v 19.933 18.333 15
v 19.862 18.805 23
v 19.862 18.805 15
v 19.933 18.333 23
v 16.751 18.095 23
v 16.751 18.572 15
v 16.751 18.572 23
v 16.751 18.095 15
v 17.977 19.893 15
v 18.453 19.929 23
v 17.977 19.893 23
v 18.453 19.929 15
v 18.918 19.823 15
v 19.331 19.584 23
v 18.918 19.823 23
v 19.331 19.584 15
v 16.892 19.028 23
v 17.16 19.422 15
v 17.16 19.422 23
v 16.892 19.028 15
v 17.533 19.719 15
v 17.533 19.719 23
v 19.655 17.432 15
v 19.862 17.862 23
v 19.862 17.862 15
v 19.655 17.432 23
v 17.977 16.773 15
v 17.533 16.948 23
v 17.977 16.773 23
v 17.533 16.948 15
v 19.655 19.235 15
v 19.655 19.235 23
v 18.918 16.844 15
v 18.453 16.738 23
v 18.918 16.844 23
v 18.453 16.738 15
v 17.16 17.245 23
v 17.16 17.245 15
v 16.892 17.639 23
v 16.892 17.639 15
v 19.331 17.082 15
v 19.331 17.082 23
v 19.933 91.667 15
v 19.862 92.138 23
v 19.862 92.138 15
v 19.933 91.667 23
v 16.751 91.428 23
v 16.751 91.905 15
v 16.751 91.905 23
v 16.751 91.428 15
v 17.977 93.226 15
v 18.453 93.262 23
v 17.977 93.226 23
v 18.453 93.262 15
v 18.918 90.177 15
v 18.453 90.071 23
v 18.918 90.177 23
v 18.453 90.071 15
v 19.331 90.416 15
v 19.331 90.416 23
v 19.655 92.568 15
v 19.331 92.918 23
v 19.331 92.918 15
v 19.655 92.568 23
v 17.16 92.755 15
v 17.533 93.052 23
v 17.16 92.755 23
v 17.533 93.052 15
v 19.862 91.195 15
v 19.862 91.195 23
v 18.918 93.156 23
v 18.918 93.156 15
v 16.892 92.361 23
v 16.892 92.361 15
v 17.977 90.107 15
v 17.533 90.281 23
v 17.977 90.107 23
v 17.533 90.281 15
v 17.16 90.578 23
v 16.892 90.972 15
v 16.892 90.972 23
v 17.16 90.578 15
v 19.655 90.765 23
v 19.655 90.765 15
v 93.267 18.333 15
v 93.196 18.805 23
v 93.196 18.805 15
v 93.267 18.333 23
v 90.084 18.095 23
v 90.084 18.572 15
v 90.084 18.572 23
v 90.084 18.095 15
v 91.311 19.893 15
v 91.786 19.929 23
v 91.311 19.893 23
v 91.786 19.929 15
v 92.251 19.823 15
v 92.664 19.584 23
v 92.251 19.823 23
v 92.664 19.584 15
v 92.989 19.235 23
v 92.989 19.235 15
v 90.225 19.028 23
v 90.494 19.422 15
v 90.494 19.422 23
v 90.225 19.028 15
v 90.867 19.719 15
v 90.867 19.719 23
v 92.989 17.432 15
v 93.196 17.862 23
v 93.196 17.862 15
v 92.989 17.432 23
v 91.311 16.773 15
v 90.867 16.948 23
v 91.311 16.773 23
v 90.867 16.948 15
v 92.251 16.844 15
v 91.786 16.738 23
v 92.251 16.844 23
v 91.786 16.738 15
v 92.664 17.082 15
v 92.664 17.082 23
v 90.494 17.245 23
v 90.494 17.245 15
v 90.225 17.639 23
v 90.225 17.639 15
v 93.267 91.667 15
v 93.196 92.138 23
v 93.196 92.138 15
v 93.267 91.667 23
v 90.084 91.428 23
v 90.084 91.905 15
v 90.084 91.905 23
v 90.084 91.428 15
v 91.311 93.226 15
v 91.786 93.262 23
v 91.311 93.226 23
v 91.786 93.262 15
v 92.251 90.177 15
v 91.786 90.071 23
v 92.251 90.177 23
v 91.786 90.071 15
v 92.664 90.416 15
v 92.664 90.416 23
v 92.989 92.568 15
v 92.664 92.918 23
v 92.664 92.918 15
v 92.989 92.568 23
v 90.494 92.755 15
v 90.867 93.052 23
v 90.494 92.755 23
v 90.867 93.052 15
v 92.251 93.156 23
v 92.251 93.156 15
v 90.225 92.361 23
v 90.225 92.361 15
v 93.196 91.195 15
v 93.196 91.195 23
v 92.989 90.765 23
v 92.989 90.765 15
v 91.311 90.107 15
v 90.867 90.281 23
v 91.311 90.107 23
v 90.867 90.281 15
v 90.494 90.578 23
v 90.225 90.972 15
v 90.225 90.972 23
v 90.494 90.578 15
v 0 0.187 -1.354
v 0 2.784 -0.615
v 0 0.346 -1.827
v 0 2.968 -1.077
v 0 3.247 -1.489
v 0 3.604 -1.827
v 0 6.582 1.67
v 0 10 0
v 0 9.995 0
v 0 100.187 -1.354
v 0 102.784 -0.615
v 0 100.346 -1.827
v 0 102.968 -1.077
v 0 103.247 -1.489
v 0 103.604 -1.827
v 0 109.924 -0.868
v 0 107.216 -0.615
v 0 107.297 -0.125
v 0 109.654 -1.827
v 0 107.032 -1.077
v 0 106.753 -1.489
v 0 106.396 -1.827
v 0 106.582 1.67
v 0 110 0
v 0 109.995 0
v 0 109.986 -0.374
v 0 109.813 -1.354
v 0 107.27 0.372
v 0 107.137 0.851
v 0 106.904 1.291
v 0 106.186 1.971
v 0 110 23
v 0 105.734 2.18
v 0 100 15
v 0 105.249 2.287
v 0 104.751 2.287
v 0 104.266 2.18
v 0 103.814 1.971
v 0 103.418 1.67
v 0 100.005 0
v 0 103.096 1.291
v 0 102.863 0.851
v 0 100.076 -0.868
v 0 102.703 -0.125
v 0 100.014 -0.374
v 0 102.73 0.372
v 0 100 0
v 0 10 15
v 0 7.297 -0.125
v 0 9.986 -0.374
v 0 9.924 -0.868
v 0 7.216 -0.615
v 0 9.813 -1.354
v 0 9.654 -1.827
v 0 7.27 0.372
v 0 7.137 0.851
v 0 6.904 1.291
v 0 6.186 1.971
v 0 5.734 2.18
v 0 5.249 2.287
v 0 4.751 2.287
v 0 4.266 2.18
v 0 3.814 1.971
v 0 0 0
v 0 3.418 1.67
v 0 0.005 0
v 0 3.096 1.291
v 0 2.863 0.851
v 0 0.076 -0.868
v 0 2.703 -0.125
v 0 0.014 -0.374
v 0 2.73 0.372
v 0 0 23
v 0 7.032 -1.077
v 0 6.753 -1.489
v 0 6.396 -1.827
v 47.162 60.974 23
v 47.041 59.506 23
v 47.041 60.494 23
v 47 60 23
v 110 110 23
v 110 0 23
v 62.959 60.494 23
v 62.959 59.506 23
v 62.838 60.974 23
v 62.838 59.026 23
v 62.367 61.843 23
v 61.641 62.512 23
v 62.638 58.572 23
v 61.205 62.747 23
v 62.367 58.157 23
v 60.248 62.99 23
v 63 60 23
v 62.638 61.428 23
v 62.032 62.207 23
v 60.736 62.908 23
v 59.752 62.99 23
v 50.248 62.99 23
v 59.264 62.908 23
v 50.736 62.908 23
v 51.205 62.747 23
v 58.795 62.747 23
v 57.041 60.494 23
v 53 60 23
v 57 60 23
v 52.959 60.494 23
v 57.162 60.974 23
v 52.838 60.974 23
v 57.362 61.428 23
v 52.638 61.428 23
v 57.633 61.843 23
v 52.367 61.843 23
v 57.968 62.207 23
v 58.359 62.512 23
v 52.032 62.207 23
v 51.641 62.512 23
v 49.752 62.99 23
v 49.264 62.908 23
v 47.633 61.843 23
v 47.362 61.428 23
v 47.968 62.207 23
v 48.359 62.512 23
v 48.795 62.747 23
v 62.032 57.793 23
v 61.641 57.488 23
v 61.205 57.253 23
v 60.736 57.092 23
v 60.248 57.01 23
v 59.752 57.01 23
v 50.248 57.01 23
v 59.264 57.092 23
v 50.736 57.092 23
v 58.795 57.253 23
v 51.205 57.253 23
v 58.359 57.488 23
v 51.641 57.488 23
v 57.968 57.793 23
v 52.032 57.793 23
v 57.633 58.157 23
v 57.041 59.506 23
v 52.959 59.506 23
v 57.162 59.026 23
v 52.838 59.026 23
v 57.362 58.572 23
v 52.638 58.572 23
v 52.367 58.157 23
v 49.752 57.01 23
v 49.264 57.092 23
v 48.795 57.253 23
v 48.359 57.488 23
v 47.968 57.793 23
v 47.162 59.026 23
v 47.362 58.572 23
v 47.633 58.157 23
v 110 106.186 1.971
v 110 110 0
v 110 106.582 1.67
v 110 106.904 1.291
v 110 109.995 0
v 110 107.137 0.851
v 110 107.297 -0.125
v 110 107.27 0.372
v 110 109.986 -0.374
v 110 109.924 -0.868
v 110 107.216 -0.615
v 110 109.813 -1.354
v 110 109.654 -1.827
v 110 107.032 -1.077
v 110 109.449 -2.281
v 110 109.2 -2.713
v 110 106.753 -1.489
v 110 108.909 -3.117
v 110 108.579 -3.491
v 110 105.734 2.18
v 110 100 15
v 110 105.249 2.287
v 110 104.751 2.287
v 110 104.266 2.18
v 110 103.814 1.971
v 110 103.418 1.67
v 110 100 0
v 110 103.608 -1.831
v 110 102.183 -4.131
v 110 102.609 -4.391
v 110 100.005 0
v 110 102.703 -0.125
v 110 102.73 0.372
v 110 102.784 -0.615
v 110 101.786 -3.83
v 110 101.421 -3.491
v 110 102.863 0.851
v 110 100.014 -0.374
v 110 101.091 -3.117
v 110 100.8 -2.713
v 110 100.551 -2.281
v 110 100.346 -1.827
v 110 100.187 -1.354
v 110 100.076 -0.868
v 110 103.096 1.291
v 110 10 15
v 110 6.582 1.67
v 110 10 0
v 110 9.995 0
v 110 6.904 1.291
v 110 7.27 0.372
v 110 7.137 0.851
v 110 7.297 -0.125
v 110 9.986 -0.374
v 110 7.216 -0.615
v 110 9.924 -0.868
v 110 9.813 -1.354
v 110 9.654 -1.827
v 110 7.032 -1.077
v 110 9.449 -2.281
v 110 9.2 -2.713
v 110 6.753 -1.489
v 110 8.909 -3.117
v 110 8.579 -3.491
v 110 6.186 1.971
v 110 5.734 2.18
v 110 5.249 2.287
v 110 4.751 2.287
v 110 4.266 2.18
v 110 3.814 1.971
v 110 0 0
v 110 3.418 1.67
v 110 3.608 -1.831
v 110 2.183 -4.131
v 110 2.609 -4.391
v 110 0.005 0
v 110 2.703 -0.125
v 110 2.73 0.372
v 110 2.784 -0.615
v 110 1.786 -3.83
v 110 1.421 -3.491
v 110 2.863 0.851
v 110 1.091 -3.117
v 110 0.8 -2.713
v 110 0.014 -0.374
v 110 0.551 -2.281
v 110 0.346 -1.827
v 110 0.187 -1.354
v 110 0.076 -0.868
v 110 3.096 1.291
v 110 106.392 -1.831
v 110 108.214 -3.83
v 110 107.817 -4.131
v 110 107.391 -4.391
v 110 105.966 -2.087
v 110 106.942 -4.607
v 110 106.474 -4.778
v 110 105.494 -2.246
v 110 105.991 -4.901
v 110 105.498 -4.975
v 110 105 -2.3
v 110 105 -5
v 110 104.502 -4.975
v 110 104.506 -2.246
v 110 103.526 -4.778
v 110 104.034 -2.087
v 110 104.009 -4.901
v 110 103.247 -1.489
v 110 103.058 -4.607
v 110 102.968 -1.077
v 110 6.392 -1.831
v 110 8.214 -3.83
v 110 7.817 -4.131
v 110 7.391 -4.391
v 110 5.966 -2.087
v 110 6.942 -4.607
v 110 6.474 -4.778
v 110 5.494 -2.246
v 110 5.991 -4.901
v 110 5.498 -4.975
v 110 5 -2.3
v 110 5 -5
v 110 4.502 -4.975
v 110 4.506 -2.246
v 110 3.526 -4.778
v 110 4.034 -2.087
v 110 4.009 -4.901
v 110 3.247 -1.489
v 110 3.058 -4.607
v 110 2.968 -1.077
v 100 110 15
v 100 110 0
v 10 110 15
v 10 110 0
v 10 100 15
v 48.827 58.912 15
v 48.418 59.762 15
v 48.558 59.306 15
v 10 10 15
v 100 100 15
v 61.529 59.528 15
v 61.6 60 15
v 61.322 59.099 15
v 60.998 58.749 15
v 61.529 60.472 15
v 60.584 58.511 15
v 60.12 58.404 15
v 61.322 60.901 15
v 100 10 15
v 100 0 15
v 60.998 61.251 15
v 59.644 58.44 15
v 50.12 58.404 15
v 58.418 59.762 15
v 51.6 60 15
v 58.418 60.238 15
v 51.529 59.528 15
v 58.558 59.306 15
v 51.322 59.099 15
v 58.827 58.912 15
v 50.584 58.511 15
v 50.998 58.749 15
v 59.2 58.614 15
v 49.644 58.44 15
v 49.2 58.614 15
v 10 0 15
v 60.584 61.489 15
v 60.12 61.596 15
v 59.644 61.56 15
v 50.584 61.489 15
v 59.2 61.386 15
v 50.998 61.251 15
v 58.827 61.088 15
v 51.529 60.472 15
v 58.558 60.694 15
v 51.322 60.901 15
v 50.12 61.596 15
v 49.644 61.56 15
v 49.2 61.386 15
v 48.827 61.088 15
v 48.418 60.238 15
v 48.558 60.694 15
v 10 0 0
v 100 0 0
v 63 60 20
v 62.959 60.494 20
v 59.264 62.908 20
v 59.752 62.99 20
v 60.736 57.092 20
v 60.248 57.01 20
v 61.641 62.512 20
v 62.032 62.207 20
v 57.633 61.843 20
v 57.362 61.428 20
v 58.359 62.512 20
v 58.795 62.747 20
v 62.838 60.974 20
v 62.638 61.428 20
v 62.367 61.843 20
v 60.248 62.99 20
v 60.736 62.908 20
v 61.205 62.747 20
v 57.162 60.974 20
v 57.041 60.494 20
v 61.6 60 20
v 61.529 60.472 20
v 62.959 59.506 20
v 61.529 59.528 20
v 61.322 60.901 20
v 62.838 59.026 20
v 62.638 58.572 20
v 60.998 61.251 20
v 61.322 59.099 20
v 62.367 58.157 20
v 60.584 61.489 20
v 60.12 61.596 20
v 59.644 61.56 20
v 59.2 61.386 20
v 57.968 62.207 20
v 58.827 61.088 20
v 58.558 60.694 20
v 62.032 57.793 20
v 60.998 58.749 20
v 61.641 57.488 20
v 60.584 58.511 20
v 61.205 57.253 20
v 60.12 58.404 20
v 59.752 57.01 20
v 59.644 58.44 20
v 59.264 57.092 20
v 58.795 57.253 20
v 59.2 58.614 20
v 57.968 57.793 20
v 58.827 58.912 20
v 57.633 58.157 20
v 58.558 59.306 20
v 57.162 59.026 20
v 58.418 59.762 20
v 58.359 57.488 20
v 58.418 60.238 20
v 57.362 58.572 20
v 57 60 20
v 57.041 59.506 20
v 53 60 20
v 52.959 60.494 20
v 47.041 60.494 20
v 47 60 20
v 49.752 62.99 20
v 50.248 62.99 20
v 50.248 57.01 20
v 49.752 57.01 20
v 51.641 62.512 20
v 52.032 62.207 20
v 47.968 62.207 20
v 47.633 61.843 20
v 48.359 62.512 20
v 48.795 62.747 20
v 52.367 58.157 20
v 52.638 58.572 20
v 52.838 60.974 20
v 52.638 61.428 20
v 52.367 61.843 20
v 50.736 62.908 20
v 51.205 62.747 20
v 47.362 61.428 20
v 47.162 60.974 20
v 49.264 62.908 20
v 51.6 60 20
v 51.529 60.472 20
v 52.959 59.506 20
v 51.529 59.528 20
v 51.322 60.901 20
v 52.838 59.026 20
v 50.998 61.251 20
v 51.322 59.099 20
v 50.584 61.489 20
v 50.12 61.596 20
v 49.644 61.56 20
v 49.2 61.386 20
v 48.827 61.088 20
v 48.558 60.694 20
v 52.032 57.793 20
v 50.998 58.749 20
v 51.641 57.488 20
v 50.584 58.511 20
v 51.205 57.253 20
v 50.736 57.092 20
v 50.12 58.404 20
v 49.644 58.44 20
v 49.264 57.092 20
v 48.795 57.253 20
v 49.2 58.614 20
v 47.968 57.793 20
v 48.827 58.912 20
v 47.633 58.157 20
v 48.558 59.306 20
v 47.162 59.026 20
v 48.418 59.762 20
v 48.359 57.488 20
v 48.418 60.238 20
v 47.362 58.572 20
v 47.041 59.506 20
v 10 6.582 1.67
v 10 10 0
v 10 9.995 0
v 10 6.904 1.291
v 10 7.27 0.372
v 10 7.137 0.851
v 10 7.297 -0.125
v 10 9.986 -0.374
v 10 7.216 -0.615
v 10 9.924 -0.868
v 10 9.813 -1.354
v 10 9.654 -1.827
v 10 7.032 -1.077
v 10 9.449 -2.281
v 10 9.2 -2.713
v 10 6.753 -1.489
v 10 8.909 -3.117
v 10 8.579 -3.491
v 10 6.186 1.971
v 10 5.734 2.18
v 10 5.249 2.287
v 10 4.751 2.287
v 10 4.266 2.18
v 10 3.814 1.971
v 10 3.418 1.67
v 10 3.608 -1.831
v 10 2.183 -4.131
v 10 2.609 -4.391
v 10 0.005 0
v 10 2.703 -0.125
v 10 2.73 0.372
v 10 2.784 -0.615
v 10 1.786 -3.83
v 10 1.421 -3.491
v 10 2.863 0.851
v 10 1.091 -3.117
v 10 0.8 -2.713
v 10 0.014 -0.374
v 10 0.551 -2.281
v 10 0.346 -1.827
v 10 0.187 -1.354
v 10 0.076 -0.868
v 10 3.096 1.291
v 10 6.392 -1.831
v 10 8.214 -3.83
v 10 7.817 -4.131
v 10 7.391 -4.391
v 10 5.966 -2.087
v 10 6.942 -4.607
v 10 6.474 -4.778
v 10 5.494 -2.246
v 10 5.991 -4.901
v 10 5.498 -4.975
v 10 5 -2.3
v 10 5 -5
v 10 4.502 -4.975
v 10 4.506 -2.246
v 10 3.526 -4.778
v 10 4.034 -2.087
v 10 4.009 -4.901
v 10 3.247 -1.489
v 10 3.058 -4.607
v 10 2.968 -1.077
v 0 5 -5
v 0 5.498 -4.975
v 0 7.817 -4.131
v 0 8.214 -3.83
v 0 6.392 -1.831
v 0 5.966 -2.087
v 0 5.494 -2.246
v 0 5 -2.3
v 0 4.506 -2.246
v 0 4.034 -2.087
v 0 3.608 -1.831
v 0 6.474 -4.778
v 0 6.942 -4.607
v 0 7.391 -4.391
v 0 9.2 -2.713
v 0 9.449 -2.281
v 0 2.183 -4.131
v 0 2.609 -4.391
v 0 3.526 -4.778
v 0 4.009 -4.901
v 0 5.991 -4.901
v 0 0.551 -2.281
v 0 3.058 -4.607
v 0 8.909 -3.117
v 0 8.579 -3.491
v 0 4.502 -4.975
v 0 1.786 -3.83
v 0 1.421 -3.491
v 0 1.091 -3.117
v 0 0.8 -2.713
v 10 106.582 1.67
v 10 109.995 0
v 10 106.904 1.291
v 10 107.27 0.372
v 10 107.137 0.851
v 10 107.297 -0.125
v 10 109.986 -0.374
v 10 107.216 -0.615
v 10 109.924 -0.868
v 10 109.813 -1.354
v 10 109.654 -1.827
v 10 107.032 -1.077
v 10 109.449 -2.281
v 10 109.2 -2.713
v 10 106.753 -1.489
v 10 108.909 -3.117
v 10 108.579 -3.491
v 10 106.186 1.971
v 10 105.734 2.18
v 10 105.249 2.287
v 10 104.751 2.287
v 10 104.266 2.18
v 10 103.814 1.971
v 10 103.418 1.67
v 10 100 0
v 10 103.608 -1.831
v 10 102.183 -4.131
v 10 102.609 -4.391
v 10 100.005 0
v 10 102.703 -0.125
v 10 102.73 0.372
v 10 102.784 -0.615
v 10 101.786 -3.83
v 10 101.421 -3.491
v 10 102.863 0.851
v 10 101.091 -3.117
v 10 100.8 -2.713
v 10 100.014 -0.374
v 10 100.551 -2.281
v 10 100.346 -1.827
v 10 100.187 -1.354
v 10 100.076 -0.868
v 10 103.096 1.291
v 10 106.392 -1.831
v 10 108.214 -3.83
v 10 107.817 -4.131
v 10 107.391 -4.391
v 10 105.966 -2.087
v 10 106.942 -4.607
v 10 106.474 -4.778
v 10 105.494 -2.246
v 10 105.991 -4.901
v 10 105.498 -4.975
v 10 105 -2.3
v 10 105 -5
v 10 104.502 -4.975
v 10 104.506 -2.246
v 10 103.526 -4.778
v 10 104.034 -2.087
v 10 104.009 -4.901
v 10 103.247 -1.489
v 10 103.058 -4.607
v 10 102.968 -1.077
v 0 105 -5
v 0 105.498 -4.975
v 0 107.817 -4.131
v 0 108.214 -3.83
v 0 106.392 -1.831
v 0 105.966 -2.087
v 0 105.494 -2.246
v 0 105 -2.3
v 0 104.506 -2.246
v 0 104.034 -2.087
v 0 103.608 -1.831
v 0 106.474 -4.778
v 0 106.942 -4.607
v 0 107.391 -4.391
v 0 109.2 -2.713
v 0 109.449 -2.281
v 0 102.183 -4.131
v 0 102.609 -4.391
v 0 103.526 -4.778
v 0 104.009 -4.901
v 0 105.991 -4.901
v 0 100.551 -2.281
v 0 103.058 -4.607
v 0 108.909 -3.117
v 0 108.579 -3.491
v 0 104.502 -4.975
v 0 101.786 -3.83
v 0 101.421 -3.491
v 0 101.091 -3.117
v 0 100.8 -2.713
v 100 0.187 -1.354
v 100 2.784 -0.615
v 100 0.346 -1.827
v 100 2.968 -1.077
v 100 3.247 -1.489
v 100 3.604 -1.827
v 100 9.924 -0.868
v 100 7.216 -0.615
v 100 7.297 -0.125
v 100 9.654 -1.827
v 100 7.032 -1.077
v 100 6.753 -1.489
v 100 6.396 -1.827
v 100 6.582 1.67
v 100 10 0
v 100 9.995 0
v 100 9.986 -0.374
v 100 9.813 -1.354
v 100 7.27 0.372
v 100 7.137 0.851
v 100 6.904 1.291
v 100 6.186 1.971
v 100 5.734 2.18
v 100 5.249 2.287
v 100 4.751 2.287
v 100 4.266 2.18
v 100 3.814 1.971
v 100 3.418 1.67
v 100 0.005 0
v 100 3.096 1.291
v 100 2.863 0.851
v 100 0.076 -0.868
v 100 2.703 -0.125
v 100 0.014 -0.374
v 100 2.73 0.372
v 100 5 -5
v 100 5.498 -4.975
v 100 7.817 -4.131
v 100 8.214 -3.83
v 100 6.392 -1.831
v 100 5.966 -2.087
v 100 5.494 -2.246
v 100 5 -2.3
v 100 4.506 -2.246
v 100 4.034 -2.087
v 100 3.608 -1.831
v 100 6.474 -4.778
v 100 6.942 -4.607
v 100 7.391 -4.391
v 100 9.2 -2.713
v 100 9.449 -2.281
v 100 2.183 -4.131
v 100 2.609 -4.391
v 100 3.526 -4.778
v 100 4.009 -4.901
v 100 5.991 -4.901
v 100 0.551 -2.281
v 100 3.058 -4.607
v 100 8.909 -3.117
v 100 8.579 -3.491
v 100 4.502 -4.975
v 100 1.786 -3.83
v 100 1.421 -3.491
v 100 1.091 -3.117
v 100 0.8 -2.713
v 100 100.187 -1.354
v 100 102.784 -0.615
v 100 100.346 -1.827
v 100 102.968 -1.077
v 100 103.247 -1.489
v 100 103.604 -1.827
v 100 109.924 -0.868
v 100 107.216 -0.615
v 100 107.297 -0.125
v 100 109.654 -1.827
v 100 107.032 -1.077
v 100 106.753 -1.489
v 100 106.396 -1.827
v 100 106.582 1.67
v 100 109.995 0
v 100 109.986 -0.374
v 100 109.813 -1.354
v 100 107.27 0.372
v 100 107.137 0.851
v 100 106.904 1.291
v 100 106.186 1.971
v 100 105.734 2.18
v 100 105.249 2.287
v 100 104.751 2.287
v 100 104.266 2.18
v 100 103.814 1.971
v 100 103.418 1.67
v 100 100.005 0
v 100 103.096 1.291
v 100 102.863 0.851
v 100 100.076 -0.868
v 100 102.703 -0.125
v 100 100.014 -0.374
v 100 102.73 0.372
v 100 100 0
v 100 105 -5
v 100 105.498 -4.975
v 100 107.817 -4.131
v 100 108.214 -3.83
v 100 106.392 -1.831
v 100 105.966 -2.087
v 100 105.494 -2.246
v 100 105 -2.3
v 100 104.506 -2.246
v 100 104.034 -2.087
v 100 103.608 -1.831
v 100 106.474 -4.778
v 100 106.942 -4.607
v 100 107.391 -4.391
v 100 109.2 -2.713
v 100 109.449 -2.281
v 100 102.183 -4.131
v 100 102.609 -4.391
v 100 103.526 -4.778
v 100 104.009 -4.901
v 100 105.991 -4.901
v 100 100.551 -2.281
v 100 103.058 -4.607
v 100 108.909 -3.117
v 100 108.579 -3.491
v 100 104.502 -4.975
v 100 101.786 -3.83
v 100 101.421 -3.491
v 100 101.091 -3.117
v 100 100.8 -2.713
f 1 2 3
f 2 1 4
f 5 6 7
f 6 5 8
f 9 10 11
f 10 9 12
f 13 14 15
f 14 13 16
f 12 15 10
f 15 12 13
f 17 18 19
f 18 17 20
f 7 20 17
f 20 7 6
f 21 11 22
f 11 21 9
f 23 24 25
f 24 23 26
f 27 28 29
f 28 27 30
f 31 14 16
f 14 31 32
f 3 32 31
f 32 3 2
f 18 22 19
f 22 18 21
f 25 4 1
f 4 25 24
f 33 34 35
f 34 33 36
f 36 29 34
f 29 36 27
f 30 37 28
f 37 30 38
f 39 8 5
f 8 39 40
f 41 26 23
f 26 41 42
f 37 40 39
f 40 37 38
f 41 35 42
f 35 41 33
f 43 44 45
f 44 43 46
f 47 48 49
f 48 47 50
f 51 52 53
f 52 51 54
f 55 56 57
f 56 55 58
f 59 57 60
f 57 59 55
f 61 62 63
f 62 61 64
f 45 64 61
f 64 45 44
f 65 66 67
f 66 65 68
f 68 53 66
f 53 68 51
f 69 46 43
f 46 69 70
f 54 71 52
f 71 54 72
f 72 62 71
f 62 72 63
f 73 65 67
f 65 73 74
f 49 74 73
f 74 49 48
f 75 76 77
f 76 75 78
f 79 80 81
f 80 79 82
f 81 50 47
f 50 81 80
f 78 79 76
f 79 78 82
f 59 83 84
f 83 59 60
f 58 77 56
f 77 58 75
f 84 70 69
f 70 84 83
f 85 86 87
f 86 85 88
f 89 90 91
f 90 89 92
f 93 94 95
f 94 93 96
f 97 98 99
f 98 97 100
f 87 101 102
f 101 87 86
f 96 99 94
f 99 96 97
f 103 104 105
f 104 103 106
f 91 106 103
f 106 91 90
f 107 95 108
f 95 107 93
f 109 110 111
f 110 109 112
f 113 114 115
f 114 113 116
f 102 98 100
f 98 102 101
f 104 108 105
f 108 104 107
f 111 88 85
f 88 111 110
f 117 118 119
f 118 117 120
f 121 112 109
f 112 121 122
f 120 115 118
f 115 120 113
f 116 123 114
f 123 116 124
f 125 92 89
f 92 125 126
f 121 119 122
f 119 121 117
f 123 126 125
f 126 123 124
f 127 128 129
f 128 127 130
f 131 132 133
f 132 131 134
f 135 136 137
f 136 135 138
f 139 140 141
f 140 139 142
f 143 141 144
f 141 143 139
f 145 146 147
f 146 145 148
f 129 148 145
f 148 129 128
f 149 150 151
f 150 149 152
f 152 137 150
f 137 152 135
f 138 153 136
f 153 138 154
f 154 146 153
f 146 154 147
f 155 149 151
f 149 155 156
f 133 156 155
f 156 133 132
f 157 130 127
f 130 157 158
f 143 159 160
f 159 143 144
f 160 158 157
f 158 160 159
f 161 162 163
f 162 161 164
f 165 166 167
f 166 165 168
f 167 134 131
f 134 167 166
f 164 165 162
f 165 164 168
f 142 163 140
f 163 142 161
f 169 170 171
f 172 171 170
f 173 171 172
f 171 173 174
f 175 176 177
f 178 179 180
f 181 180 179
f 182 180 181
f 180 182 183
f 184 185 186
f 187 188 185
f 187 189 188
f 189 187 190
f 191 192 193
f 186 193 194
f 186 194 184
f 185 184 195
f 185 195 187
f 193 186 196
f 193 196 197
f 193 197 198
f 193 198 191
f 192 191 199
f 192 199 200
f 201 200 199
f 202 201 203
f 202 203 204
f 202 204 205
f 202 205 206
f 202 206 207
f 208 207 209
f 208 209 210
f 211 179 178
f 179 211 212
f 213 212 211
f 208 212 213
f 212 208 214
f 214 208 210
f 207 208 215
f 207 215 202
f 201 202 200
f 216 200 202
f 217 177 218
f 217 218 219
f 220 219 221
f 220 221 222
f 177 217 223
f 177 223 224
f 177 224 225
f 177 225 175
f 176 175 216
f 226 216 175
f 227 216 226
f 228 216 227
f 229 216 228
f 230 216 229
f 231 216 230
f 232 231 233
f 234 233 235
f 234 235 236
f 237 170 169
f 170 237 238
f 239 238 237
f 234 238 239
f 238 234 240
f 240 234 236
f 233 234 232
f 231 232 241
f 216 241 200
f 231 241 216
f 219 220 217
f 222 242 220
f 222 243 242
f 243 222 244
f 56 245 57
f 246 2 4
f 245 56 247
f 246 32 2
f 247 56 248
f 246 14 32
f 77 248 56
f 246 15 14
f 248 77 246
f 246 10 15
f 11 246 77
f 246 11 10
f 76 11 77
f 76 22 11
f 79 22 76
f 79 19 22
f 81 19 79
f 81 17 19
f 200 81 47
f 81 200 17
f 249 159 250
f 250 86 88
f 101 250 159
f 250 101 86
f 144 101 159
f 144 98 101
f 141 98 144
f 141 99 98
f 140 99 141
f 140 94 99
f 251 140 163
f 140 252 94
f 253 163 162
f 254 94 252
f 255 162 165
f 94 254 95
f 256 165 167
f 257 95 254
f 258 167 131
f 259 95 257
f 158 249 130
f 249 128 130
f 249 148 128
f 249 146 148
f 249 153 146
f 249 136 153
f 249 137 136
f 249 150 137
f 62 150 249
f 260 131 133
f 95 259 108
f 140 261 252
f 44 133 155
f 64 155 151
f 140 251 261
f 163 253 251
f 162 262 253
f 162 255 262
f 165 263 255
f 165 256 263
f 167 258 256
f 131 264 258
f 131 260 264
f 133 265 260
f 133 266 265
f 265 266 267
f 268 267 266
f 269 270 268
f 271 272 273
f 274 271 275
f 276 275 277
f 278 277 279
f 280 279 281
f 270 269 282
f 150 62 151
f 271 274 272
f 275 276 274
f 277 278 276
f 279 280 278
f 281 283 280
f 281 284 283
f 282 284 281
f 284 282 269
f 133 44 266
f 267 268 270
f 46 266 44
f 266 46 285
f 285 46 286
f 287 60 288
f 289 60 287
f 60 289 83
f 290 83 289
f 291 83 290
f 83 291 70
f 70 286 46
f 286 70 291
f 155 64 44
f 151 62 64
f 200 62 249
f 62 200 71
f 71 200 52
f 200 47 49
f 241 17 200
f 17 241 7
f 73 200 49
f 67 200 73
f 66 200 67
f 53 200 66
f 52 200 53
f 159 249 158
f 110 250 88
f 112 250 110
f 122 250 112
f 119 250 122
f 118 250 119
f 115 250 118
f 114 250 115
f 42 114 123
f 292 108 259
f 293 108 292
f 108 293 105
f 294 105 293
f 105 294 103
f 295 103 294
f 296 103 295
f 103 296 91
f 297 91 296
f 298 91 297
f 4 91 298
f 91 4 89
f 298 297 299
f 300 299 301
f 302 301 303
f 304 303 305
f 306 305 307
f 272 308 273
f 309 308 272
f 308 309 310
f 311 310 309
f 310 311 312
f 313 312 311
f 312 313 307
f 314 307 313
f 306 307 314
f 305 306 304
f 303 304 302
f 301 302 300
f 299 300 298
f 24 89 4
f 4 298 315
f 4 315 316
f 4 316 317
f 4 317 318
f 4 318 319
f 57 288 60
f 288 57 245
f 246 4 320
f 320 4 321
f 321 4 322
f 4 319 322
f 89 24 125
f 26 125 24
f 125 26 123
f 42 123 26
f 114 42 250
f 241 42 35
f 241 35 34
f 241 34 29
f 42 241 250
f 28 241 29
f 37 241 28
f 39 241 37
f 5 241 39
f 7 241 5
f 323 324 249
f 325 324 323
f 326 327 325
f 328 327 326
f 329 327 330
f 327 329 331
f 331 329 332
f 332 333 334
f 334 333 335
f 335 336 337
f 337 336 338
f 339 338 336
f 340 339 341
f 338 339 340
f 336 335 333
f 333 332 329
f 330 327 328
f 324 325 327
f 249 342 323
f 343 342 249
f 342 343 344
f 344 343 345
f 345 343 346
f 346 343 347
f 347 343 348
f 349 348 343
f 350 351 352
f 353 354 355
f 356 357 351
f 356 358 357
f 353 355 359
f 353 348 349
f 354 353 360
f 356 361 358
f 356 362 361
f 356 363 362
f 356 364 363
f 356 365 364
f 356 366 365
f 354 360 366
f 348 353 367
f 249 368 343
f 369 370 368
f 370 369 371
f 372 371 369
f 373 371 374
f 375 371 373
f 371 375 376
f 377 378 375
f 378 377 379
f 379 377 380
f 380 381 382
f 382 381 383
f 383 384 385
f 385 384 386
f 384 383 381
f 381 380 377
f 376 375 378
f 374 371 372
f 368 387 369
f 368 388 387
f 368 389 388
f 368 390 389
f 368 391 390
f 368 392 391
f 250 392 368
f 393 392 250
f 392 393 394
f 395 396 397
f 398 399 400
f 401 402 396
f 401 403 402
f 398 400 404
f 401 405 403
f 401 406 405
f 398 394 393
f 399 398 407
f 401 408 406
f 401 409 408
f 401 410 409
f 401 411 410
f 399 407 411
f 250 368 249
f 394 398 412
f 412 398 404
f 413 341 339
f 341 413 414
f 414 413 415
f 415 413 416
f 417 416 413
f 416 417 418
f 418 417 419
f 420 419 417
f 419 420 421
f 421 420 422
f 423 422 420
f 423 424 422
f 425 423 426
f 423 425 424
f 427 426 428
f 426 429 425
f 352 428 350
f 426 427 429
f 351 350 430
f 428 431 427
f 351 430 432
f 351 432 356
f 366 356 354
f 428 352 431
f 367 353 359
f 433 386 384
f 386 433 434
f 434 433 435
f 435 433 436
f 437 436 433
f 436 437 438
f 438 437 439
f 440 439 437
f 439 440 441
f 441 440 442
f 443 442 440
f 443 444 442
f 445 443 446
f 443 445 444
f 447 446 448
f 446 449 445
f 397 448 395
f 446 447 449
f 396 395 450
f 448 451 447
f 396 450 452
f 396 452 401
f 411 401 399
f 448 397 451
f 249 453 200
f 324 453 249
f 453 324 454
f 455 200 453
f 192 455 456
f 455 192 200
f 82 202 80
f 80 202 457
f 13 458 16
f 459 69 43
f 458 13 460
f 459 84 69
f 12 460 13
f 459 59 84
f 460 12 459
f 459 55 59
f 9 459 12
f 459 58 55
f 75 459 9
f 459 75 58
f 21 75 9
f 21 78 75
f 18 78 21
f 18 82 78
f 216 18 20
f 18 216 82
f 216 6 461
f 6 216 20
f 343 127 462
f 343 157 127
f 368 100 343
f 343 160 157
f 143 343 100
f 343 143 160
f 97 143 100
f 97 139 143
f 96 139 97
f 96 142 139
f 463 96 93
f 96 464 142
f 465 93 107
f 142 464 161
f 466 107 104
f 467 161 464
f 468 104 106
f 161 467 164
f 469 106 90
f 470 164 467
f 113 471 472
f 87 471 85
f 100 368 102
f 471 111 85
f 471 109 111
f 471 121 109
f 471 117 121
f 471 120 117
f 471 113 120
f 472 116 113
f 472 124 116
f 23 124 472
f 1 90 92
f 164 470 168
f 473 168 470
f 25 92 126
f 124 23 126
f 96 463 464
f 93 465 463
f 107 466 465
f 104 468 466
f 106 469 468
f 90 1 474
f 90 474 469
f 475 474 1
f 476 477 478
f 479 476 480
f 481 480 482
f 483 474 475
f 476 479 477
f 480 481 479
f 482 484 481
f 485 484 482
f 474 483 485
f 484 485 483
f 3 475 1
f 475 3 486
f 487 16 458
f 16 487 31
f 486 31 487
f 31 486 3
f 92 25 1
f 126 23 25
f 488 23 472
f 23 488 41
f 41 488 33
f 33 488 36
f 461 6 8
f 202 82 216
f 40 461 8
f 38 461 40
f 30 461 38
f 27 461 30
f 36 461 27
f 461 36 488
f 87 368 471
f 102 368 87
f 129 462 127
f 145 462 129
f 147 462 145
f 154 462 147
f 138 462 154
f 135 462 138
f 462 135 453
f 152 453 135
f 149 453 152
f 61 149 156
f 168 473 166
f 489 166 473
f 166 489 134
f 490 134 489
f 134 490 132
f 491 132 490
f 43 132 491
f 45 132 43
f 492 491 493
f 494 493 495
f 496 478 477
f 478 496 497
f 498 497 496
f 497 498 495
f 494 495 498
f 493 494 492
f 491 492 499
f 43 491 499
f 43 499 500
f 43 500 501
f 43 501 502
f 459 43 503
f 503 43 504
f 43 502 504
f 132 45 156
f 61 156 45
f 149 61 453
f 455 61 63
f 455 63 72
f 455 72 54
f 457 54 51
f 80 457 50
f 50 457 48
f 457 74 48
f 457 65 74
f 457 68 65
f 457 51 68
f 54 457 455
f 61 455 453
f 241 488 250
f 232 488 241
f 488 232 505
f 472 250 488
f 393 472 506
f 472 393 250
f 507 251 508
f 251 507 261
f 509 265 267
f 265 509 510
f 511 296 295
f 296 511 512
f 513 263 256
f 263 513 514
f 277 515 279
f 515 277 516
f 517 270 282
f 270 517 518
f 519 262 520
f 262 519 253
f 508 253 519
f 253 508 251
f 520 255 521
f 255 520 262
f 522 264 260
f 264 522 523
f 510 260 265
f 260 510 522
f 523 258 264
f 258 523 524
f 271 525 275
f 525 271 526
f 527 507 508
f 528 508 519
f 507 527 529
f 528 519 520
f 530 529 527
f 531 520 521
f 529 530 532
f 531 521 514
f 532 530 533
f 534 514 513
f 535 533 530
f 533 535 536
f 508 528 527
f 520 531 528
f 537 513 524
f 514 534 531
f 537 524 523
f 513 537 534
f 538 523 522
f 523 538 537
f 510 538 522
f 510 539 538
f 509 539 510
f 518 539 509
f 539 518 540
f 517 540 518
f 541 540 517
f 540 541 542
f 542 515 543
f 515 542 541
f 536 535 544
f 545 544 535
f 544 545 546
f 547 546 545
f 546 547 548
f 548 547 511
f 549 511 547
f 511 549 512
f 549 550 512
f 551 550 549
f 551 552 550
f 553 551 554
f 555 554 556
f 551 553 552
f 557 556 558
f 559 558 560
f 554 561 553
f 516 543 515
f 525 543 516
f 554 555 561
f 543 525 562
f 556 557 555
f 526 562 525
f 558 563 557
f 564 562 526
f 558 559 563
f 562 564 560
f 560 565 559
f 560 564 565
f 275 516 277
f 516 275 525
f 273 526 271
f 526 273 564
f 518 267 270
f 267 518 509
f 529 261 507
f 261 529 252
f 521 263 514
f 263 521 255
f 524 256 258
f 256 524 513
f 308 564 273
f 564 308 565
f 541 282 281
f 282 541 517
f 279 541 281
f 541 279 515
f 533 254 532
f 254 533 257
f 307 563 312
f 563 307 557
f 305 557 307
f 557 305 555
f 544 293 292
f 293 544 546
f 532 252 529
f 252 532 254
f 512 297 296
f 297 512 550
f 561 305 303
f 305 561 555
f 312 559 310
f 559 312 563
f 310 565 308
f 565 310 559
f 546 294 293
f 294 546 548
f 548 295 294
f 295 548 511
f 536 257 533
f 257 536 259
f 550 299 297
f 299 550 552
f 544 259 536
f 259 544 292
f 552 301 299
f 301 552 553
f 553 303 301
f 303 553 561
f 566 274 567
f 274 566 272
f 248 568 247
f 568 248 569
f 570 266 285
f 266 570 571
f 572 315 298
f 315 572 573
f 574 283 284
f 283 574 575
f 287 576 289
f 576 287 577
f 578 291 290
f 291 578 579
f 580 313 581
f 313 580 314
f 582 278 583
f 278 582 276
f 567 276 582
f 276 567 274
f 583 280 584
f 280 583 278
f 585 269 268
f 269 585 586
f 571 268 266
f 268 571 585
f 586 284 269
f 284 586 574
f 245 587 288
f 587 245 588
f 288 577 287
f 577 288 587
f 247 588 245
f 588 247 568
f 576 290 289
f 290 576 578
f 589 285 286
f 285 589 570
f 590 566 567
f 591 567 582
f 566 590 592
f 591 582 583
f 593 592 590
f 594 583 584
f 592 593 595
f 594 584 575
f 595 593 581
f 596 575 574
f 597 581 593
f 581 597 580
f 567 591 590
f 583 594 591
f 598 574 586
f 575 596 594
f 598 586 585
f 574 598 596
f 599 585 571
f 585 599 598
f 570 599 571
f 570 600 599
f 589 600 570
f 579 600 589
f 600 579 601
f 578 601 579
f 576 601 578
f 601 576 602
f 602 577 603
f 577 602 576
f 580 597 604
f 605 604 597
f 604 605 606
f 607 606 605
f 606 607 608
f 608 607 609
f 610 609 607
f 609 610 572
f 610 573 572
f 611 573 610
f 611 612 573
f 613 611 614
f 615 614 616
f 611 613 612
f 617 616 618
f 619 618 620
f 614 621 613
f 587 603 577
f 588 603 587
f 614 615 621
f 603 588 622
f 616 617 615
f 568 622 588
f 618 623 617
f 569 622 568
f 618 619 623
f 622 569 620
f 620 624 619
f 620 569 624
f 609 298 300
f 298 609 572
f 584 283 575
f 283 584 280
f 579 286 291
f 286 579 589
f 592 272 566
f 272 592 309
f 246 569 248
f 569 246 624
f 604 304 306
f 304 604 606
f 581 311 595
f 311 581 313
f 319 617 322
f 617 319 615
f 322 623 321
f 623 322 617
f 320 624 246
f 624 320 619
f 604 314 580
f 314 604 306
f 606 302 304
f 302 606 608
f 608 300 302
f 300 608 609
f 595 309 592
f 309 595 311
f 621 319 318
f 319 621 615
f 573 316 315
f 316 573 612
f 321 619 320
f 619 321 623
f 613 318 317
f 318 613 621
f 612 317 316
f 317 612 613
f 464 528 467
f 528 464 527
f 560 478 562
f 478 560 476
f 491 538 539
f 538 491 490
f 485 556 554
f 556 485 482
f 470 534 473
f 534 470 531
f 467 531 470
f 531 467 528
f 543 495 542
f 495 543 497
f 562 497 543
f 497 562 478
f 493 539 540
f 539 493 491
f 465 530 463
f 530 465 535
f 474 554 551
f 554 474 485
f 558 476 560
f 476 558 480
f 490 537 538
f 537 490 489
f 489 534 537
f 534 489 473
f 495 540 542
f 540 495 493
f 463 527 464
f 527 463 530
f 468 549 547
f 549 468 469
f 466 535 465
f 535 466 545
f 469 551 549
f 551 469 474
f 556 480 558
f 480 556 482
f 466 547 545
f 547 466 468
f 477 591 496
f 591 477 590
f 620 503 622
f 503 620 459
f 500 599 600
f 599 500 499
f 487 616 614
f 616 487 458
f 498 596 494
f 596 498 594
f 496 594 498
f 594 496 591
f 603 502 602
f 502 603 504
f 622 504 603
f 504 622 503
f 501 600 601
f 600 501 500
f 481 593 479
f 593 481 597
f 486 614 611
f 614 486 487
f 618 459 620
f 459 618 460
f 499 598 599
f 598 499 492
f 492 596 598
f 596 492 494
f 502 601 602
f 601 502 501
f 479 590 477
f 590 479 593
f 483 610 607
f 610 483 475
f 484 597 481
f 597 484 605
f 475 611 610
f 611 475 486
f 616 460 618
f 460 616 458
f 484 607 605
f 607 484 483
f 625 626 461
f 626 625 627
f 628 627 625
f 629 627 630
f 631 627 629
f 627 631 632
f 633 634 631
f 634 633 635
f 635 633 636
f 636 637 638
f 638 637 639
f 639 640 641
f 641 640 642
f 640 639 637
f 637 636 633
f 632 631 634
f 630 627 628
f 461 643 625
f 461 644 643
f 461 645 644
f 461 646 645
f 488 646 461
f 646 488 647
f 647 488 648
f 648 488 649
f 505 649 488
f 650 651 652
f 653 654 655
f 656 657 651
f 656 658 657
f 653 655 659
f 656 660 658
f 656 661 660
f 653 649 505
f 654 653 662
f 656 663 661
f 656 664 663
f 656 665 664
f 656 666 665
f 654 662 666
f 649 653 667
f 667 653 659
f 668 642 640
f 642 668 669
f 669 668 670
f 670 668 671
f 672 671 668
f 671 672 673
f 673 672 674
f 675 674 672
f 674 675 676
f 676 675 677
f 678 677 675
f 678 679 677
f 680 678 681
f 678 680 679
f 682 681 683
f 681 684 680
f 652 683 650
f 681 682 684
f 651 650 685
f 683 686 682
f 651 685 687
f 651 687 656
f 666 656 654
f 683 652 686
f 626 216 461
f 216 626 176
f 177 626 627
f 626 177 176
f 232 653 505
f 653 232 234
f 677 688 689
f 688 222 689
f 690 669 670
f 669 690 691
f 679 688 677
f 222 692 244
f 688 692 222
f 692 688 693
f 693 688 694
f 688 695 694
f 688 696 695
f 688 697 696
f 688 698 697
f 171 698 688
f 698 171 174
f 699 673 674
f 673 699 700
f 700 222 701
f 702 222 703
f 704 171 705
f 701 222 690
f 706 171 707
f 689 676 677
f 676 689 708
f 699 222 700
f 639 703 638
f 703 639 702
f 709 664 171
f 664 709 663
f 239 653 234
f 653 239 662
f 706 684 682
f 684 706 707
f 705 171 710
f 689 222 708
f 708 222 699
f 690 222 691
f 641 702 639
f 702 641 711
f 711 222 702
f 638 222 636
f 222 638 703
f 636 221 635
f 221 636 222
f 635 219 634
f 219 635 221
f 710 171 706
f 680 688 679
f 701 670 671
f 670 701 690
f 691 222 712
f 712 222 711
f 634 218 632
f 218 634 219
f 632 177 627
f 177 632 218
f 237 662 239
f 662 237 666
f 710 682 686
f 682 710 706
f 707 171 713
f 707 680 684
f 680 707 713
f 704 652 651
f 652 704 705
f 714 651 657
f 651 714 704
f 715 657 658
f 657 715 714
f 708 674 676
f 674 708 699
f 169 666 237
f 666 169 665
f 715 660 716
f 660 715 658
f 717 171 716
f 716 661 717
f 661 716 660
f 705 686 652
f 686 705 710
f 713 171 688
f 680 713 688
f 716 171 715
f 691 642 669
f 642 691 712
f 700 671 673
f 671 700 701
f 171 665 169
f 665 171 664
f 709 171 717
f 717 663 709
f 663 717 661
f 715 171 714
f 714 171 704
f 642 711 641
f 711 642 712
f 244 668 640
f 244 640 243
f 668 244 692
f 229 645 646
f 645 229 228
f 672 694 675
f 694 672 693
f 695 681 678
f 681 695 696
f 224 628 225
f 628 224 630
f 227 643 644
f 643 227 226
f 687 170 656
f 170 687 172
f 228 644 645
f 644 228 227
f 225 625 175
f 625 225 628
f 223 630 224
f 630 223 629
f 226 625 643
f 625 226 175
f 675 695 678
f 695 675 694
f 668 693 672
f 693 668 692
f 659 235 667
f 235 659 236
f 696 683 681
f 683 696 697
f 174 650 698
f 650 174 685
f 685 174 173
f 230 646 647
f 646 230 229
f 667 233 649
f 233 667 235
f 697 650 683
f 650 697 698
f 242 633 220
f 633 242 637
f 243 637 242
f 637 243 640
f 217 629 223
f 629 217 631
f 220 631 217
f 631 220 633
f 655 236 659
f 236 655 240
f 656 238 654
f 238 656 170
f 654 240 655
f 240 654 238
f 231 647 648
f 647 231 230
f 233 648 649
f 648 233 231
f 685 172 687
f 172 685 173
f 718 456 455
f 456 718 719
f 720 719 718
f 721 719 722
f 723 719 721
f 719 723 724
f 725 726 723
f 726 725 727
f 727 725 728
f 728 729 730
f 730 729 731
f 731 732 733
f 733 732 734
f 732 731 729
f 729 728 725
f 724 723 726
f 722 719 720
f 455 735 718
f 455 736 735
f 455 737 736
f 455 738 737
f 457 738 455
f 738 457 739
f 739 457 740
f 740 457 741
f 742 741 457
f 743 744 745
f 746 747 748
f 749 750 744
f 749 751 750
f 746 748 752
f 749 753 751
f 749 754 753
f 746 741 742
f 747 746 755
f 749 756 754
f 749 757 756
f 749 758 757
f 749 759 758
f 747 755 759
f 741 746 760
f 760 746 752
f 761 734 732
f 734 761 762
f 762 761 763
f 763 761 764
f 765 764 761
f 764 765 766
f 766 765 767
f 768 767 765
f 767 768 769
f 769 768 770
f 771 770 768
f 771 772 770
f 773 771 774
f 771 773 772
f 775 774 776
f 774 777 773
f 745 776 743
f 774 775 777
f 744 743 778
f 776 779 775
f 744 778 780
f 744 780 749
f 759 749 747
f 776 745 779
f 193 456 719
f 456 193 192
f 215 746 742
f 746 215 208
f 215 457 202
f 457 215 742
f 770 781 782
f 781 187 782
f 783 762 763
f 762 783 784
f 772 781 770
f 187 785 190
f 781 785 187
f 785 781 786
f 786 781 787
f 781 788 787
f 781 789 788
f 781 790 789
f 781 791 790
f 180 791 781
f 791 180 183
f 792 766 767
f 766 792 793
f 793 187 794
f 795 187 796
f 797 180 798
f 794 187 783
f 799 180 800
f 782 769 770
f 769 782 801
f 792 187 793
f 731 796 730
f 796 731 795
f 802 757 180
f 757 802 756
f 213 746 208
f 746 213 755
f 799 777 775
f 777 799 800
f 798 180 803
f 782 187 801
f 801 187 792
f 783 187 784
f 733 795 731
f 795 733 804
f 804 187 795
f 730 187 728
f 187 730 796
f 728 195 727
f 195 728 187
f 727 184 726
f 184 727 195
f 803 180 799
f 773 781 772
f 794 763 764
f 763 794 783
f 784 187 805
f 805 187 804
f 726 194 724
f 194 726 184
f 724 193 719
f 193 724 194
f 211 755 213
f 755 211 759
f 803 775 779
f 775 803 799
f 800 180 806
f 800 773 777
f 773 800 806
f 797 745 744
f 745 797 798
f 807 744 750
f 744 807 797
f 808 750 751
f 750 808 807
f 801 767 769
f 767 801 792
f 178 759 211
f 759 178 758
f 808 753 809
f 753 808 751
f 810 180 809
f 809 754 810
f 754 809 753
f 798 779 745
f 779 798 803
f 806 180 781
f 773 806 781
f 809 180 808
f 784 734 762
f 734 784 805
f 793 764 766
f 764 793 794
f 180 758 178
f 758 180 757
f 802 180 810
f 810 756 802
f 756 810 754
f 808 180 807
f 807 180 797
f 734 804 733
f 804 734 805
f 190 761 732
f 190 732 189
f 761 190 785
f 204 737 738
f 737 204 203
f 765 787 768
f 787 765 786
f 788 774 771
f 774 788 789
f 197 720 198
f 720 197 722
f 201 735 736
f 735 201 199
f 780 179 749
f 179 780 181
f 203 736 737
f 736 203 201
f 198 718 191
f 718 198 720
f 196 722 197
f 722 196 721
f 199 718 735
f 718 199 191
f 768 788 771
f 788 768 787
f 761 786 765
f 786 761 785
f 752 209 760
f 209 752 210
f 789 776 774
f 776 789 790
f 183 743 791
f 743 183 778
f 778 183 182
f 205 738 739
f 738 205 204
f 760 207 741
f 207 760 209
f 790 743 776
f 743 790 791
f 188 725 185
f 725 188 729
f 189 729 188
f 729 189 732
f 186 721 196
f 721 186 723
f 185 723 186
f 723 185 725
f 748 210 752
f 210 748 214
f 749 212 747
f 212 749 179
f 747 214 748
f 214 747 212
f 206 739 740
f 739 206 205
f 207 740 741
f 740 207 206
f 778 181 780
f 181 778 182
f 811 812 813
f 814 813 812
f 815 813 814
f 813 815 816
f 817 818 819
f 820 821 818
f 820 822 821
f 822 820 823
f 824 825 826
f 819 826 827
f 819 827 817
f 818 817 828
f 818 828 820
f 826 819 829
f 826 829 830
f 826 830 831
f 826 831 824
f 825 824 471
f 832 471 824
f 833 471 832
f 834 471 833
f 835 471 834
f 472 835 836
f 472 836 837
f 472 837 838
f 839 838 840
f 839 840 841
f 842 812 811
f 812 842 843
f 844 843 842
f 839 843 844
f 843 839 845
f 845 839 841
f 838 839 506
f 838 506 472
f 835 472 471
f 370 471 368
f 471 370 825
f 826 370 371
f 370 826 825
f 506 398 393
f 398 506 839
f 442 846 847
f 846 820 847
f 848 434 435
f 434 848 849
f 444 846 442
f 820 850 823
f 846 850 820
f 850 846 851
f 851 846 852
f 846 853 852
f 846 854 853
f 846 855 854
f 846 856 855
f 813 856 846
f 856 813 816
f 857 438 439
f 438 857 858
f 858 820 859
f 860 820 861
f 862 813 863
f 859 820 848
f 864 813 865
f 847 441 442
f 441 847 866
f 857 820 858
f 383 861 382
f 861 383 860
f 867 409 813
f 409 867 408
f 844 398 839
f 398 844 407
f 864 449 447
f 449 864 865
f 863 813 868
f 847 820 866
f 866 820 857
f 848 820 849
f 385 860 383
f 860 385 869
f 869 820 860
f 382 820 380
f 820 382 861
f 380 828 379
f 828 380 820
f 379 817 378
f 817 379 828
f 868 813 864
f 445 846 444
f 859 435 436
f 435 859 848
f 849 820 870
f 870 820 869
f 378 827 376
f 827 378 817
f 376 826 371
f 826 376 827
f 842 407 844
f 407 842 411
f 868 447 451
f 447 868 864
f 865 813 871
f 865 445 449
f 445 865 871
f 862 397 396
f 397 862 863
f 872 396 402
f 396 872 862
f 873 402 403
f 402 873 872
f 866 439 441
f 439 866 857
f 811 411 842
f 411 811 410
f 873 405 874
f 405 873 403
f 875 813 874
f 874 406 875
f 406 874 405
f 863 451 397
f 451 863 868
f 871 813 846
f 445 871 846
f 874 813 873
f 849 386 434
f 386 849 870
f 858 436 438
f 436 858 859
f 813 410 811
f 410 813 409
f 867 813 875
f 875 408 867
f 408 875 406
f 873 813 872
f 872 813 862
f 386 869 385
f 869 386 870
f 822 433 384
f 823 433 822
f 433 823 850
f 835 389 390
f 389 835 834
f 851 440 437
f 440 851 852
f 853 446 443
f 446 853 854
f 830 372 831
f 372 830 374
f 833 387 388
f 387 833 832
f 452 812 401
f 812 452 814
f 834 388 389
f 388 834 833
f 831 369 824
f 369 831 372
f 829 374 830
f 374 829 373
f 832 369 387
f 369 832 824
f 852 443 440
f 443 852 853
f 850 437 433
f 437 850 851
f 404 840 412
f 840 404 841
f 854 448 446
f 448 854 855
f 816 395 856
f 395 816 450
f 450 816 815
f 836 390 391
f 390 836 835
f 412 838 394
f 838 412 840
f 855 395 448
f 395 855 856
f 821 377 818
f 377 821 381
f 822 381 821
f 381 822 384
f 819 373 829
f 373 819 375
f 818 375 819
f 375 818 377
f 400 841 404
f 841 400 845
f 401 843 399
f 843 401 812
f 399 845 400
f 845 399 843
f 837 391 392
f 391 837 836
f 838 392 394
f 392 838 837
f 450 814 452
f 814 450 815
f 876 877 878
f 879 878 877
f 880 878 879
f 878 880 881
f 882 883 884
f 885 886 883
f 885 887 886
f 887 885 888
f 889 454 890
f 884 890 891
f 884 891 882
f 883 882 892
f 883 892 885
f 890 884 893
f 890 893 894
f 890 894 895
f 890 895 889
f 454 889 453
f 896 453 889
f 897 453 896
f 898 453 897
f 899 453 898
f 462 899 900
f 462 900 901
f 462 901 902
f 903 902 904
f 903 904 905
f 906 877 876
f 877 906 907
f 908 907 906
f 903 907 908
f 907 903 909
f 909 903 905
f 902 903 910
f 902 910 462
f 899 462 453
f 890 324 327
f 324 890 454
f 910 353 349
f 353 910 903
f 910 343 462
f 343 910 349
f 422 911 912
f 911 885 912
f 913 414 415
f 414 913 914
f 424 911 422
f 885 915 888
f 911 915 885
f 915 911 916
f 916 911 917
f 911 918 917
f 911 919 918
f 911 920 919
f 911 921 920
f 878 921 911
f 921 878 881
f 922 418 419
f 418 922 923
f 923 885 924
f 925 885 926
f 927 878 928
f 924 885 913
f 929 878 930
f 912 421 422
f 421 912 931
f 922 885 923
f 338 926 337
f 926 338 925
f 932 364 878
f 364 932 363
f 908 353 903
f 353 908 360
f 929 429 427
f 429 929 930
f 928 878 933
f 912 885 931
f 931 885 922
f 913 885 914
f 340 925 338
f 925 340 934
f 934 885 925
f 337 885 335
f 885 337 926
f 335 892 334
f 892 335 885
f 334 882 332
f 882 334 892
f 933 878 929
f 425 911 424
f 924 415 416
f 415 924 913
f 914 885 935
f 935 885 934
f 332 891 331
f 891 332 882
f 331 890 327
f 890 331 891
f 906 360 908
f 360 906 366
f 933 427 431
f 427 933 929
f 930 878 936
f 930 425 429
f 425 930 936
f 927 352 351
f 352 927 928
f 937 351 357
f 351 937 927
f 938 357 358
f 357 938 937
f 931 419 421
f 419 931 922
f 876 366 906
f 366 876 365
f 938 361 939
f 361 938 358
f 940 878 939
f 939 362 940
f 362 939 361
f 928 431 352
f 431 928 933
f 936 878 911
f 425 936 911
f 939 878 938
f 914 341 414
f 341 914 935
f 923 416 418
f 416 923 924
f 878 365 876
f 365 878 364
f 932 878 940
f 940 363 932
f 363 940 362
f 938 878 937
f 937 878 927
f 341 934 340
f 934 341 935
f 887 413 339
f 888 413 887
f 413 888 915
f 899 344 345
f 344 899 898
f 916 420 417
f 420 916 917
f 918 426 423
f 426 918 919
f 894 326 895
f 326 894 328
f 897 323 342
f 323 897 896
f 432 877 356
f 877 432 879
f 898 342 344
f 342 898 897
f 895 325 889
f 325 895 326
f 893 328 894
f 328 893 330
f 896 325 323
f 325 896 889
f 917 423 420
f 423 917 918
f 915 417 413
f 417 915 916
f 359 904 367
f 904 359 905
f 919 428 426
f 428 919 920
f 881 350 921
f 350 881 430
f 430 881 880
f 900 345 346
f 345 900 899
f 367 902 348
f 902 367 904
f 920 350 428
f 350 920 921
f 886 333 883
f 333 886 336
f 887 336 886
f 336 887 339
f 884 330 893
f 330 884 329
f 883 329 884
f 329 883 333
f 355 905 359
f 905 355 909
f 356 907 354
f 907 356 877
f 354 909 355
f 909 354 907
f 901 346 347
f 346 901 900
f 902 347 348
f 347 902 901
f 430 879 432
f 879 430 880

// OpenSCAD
module Bed(height=8, thickness=10, rod_separation=100, rod_radius=2, screw_radius=1.6,
            gap=15, fit_factor=1.15) {
                
    // Foot Module
    module Foot() {
        translate([thickness/2, thickness/2, -gap/2])
        difference() {
            union() {
                cube([thickness, thickness, gap], center=true);
                translate([-thickness/2, 0, -gap/2]) rotate([0, 90, 0]) 
                    cylinder(r=thickness/2, h=thickness);
            }
            translate([-thickness/2-1, 0, -gap/2]) rotate([0, 90, 0]) 
                    cylinder(r=fit_factor*rod_radius, h=thickness+2);
        }
    }
    
    
    translate([(rod_separation+thickness)/2, (rod_separation+thickness)/2, 
                gap+height/2]){
    
        // bed with holes
        difference() {
            cube([rod_separation+thickness, rod_separation+thickness, 
                height], center=true);
            for(x = [-(rod_separation+thickness)/3, (rod_separation+thickness)/3]) {
                for(y = [-(rod_separation+thickness)/3, (rod_separation+thickness)/3]) {
                    translate([x, y, 0]) cylinder(r=screw_radius, h=height+2, 
                        center=true);
                }
            }
            #translate([5,5,height/2-3]) cylinder(r=3, h=4);
            #translate([-5,5,height/2-3]) cylinder(r=3, h=4);
            translate([5,5,-1-height/2]) cylinder(r=screw_radius, h=height+2);
            translate([-5,5,-1-height/2]) cylinder(r=screw_radius, h=height+2);
        }
        
        // place rod grabbers
        for(x = [-(rod_separation+thickness)/2, (rod_separation-thickness)/2]) {
            for(y = [-(rod_separation+thickness)/2, (rod_separation-thickness)/2]) {
                translate([x, y, -height/2]) Foot();
            }
        }
    
    }
}

Bed($fa=.5, $fs=.5);
